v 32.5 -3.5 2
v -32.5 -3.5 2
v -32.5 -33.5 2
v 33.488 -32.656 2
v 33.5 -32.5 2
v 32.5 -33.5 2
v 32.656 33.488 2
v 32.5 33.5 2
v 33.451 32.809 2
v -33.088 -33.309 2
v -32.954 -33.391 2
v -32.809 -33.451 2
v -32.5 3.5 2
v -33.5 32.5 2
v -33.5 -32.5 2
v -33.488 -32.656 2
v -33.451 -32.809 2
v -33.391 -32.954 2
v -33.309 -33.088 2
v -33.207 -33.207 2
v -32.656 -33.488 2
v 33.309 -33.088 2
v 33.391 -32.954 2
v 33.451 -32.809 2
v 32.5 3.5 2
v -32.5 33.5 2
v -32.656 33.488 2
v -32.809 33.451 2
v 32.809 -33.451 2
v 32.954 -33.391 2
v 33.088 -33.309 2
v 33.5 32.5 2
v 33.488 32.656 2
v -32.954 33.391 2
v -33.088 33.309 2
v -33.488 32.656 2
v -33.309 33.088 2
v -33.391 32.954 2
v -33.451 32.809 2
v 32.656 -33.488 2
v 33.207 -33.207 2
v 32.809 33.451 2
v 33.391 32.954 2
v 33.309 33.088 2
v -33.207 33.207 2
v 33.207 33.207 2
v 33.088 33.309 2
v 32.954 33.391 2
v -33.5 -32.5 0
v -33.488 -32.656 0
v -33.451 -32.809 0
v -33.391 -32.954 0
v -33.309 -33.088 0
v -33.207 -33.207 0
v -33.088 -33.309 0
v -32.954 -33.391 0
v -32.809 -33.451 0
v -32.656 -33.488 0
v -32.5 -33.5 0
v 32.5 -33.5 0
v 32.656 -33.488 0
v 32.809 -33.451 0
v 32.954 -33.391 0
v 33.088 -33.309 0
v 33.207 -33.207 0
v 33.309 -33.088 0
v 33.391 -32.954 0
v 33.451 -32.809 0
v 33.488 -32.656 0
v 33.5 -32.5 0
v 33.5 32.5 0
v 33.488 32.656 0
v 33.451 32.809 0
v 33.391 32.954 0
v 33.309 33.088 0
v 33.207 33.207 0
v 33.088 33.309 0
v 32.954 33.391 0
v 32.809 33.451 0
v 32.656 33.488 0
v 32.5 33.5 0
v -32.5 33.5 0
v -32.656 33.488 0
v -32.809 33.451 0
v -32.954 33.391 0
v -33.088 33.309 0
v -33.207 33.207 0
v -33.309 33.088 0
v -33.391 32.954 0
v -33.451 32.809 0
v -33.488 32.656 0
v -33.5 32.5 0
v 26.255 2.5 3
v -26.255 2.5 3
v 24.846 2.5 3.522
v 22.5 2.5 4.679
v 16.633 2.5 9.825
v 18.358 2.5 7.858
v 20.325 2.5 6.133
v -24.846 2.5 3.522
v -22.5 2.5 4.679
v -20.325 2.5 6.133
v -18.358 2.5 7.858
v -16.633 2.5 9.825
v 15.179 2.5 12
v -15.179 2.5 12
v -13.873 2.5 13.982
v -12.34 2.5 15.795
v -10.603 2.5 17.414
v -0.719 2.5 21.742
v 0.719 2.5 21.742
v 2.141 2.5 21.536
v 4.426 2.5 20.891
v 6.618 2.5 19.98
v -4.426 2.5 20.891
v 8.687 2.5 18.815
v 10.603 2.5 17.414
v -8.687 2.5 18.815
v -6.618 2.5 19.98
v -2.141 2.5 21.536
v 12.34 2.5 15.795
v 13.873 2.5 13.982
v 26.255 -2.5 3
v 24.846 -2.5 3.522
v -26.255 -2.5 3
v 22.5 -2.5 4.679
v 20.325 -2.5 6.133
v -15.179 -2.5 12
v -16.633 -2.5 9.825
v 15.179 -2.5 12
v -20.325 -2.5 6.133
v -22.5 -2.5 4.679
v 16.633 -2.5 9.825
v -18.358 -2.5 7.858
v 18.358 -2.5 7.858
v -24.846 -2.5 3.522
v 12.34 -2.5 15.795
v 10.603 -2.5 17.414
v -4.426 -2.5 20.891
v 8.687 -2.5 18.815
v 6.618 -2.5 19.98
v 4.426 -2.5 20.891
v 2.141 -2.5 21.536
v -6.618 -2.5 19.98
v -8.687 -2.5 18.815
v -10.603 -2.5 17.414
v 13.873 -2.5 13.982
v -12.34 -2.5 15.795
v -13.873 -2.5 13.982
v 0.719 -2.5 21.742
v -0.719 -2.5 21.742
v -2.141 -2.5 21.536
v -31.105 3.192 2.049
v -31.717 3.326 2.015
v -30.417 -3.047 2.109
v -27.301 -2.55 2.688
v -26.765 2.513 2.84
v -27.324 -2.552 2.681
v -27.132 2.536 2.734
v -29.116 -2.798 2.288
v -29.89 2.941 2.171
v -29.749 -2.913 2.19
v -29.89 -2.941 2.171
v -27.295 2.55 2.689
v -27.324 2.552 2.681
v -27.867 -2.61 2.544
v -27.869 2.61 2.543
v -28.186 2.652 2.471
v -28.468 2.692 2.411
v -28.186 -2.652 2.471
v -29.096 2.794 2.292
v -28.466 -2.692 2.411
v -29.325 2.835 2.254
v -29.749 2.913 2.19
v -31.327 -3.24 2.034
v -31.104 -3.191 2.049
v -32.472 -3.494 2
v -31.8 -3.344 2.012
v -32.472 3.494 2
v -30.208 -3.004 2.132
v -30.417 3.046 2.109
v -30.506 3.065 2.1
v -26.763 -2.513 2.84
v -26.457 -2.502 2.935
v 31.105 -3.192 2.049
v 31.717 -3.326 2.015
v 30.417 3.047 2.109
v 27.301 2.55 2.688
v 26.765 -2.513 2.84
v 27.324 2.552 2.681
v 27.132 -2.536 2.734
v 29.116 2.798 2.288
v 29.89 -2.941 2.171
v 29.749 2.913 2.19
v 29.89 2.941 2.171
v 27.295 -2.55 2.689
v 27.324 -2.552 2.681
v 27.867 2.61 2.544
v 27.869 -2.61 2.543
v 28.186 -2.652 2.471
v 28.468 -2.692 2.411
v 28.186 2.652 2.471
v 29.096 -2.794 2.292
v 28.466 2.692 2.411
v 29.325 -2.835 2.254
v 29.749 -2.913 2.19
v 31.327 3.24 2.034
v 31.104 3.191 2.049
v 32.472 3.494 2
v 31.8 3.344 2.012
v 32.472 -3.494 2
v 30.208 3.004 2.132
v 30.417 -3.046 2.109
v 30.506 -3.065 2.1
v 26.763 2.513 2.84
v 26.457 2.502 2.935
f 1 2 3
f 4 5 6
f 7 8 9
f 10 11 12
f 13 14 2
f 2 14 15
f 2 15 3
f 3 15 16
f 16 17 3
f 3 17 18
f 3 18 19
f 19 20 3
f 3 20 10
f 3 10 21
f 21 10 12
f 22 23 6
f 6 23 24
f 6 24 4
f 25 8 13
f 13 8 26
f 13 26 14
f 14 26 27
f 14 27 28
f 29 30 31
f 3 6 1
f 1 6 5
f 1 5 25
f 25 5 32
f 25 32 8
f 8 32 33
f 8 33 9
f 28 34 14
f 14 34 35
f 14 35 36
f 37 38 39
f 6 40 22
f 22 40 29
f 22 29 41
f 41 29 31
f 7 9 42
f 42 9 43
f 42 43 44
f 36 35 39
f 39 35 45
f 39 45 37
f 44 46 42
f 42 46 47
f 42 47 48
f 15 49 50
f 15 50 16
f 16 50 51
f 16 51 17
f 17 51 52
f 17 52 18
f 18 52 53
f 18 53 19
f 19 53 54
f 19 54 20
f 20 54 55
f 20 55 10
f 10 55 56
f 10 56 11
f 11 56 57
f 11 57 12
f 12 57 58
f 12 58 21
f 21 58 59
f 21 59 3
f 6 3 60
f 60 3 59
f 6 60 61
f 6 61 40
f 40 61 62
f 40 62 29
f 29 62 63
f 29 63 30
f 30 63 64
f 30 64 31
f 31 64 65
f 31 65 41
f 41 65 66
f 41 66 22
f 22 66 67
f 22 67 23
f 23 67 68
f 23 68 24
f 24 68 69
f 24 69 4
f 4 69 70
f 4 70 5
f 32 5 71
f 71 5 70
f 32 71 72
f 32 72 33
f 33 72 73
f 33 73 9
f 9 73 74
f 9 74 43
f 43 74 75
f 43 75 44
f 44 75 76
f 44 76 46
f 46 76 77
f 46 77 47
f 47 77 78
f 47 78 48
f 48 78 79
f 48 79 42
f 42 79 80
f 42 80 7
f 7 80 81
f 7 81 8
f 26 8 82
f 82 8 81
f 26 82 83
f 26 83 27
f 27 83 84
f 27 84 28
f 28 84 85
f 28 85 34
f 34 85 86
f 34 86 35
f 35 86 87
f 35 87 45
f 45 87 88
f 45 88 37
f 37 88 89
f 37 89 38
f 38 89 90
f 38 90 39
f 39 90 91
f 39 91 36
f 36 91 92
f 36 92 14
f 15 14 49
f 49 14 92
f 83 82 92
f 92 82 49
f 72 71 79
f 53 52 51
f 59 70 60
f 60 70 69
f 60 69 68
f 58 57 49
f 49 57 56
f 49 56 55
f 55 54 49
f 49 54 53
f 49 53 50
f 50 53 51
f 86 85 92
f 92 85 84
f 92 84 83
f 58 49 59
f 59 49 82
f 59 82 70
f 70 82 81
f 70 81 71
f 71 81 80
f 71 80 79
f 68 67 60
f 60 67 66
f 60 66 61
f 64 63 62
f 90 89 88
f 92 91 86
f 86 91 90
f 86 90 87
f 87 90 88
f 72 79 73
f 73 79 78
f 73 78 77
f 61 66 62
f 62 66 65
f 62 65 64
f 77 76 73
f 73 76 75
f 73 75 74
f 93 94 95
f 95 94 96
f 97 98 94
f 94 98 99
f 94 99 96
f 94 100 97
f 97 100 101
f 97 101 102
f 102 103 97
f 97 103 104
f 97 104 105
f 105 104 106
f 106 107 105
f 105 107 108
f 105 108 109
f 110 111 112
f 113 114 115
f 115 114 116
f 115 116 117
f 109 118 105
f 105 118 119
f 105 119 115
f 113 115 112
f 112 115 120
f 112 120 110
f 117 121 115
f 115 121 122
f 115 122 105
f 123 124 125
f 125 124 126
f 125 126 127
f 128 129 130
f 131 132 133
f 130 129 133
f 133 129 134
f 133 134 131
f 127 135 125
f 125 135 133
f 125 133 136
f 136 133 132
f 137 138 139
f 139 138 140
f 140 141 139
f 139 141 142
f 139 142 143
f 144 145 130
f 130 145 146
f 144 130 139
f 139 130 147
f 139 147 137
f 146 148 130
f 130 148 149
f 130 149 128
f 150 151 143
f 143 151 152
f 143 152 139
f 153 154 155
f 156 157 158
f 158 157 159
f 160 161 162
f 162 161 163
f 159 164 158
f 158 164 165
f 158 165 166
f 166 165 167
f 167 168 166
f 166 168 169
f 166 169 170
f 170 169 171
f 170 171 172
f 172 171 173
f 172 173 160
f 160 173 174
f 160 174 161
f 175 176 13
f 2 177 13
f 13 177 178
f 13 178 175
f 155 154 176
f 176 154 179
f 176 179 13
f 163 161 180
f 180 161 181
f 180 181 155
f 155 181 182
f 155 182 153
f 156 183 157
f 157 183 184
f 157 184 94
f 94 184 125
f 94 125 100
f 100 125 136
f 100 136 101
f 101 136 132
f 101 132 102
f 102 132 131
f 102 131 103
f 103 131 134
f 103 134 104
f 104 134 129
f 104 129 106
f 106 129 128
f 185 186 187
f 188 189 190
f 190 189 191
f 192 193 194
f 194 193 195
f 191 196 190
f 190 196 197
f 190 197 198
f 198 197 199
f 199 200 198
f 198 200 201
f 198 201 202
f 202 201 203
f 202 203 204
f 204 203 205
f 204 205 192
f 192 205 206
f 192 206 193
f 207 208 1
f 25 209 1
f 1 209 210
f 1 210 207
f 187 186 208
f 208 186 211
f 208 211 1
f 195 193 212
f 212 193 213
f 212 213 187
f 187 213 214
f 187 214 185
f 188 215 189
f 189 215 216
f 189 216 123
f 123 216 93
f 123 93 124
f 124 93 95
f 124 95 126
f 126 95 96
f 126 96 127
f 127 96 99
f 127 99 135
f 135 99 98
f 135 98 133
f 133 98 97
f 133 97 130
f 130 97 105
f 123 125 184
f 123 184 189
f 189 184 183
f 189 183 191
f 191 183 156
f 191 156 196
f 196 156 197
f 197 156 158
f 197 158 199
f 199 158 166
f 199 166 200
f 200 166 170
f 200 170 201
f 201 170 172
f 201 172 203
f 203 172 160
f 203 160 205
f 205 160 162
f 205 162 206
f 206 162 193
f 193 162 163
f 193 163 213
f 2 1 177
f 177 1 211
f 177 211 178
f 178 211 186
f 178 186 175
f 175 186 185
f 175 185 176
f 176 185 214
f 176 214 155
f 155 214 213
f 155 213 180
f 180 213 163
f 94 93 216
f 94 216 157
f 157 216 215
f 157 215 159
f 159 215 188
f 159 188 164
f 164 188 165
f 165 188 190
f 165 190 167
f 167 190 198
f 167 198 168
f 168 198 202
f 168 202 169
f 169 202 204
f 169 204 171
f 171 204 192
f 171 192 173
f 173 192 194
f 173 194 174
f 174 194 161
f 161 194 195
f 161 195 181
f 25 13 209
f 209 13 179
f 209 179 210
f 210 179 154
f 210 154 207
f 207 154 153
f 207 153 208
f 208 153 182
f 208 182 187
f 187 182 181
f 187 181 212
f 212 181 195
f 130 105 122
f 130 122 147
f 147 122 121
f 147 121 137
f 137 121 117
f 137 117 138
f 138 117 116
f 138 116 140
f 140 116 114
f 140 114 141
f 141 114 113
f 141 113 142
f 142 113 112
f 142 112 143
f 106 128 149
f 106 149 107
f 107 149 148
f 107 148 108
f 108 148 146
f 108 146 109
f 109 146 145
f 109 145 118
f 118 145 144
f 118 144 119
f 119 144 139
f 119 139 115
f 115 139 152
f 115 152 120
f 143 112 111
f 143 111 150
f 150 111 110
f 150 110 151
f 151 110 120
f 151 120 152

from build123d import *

# Parameters (mm, degrees)
AUFSATZ_LINEAR_AUSTRAGEN1_DEPTH = 2
SKIZZE2_W                       = 25
SKIZZE2_H                       = 5
AUFSATZ_LINEAR_AUSTRAGEN2_DEPTH = 20
VERRUNDUNG1_R                   = 20
VERRUNDUNG2_R                   = 1
VERRUNDUNG3_R                   = 20
VERRUNDUNG4_R                   = 10


# Some blends are built 0.0001 mm under size
with BuildPart() as part:
    # Skizze1 → Aufsatz-Linear austragen1 (new body)
    with BuildSketch(Plane.XY):
        with BuildLine():
            Line((-32.5, -33.5), (32.5, -33.5))
            ThreePointArc((32.5, -33.5), (33.207106781, -33.207106781), (33.5, -32.5))
            Line((33.5, -32.5), (33.5, 32.5))
            ThreePointArc((33.5, 32.5), (33.207106781, 33.207106781), (32.5, 33.5))
            Line((32.5, 33.5), (-32.5, 33.5))
            ThreePointArc((-32.5, 33.5), (-33.207106781, 33.207106781), (-33.5, 32.5))
            Line((-33.5, 32.5), (-33.5, -32.5))
            ThreePointArc((-33.5, -32.5), (-33.207106781, -33.207106781), (-32.5, -33.5))
        make_face()
    extrude(amount=AUFSATZ_LINEAR_AUSTRAGEN1_DEPTH)

    # Skizze2 → Aufsatz-Linear austragen2 (add)
    with BuildSketch(Plane.XY.offset(2)):
        Rectangle(SKIZZE2_W, SKIZZE2_H)
    extrude(amount=AUFSATZ_LINEAR_AUSTRAGEN2_DEPTH)

    # Verrundung1
    verrundung1_edges = [part.edges().sort_by_distance(p)[0] for p in [
        (-12.5, 0, 2),
        (12.5, 0, 2),
    ]]
    fillet(verrundung1_edges, radius=VERRUNDUNG1_R - 0.0001)  # a hair under: the kernel refuses the full size

    # Verrundung2
    verrundung2_edges = [part.edges().sort_by_distance(p)[0] for p in [
        (0, 2.5, 2),
        (0, -2.5, 2),
    ]]
    fillet(verrundung2_edges, radius=VERRUNDUNG2_R)

    # Verrundung3
    # the kernel refuses this fillet: 20 mm, written as the material it takes off along each edge
    with BuildSketch(Plane(origin=(-12.5, 39.102646041, 22), x_dir=(1, 0, 0), z_dir=(0, -1, 0)), Plane(origin=(12.5, -39.102646041, 22), x_dir=(-1, 0, 0), z_dir=(0, 1, 0))) as verrundung3_piece_1:
        with BuildLine():
            CenterArc((14.641058416, -20), VERRUNDUNG3_R, 90, 60.0000827)
            Line((-2.679464093, -10.000025), (-4.411516344, -9.0000275))
            ThreePointArc((-4.411516344, -9.0000275), (-2, -0.0001), (-2, 0))
            Line((-2, 0), (0, 2))
            Line((0, 2), (14.641058416, 2))
            Line((14.641058416, 2), (14.641058416, 0))
        make_face()
    extrude(amount=78.205292082, mode=Mode.SUBTRACT)

    # Verrundung4
    verrundung4_edges = [part.edges().sort_by_distance(p)[0] for p in [
        (0, 0, 21.885066479),
    ]]
    fillet(verrundung4_edges, radius=VERRUNDUNG4_R)


solid = part.part
